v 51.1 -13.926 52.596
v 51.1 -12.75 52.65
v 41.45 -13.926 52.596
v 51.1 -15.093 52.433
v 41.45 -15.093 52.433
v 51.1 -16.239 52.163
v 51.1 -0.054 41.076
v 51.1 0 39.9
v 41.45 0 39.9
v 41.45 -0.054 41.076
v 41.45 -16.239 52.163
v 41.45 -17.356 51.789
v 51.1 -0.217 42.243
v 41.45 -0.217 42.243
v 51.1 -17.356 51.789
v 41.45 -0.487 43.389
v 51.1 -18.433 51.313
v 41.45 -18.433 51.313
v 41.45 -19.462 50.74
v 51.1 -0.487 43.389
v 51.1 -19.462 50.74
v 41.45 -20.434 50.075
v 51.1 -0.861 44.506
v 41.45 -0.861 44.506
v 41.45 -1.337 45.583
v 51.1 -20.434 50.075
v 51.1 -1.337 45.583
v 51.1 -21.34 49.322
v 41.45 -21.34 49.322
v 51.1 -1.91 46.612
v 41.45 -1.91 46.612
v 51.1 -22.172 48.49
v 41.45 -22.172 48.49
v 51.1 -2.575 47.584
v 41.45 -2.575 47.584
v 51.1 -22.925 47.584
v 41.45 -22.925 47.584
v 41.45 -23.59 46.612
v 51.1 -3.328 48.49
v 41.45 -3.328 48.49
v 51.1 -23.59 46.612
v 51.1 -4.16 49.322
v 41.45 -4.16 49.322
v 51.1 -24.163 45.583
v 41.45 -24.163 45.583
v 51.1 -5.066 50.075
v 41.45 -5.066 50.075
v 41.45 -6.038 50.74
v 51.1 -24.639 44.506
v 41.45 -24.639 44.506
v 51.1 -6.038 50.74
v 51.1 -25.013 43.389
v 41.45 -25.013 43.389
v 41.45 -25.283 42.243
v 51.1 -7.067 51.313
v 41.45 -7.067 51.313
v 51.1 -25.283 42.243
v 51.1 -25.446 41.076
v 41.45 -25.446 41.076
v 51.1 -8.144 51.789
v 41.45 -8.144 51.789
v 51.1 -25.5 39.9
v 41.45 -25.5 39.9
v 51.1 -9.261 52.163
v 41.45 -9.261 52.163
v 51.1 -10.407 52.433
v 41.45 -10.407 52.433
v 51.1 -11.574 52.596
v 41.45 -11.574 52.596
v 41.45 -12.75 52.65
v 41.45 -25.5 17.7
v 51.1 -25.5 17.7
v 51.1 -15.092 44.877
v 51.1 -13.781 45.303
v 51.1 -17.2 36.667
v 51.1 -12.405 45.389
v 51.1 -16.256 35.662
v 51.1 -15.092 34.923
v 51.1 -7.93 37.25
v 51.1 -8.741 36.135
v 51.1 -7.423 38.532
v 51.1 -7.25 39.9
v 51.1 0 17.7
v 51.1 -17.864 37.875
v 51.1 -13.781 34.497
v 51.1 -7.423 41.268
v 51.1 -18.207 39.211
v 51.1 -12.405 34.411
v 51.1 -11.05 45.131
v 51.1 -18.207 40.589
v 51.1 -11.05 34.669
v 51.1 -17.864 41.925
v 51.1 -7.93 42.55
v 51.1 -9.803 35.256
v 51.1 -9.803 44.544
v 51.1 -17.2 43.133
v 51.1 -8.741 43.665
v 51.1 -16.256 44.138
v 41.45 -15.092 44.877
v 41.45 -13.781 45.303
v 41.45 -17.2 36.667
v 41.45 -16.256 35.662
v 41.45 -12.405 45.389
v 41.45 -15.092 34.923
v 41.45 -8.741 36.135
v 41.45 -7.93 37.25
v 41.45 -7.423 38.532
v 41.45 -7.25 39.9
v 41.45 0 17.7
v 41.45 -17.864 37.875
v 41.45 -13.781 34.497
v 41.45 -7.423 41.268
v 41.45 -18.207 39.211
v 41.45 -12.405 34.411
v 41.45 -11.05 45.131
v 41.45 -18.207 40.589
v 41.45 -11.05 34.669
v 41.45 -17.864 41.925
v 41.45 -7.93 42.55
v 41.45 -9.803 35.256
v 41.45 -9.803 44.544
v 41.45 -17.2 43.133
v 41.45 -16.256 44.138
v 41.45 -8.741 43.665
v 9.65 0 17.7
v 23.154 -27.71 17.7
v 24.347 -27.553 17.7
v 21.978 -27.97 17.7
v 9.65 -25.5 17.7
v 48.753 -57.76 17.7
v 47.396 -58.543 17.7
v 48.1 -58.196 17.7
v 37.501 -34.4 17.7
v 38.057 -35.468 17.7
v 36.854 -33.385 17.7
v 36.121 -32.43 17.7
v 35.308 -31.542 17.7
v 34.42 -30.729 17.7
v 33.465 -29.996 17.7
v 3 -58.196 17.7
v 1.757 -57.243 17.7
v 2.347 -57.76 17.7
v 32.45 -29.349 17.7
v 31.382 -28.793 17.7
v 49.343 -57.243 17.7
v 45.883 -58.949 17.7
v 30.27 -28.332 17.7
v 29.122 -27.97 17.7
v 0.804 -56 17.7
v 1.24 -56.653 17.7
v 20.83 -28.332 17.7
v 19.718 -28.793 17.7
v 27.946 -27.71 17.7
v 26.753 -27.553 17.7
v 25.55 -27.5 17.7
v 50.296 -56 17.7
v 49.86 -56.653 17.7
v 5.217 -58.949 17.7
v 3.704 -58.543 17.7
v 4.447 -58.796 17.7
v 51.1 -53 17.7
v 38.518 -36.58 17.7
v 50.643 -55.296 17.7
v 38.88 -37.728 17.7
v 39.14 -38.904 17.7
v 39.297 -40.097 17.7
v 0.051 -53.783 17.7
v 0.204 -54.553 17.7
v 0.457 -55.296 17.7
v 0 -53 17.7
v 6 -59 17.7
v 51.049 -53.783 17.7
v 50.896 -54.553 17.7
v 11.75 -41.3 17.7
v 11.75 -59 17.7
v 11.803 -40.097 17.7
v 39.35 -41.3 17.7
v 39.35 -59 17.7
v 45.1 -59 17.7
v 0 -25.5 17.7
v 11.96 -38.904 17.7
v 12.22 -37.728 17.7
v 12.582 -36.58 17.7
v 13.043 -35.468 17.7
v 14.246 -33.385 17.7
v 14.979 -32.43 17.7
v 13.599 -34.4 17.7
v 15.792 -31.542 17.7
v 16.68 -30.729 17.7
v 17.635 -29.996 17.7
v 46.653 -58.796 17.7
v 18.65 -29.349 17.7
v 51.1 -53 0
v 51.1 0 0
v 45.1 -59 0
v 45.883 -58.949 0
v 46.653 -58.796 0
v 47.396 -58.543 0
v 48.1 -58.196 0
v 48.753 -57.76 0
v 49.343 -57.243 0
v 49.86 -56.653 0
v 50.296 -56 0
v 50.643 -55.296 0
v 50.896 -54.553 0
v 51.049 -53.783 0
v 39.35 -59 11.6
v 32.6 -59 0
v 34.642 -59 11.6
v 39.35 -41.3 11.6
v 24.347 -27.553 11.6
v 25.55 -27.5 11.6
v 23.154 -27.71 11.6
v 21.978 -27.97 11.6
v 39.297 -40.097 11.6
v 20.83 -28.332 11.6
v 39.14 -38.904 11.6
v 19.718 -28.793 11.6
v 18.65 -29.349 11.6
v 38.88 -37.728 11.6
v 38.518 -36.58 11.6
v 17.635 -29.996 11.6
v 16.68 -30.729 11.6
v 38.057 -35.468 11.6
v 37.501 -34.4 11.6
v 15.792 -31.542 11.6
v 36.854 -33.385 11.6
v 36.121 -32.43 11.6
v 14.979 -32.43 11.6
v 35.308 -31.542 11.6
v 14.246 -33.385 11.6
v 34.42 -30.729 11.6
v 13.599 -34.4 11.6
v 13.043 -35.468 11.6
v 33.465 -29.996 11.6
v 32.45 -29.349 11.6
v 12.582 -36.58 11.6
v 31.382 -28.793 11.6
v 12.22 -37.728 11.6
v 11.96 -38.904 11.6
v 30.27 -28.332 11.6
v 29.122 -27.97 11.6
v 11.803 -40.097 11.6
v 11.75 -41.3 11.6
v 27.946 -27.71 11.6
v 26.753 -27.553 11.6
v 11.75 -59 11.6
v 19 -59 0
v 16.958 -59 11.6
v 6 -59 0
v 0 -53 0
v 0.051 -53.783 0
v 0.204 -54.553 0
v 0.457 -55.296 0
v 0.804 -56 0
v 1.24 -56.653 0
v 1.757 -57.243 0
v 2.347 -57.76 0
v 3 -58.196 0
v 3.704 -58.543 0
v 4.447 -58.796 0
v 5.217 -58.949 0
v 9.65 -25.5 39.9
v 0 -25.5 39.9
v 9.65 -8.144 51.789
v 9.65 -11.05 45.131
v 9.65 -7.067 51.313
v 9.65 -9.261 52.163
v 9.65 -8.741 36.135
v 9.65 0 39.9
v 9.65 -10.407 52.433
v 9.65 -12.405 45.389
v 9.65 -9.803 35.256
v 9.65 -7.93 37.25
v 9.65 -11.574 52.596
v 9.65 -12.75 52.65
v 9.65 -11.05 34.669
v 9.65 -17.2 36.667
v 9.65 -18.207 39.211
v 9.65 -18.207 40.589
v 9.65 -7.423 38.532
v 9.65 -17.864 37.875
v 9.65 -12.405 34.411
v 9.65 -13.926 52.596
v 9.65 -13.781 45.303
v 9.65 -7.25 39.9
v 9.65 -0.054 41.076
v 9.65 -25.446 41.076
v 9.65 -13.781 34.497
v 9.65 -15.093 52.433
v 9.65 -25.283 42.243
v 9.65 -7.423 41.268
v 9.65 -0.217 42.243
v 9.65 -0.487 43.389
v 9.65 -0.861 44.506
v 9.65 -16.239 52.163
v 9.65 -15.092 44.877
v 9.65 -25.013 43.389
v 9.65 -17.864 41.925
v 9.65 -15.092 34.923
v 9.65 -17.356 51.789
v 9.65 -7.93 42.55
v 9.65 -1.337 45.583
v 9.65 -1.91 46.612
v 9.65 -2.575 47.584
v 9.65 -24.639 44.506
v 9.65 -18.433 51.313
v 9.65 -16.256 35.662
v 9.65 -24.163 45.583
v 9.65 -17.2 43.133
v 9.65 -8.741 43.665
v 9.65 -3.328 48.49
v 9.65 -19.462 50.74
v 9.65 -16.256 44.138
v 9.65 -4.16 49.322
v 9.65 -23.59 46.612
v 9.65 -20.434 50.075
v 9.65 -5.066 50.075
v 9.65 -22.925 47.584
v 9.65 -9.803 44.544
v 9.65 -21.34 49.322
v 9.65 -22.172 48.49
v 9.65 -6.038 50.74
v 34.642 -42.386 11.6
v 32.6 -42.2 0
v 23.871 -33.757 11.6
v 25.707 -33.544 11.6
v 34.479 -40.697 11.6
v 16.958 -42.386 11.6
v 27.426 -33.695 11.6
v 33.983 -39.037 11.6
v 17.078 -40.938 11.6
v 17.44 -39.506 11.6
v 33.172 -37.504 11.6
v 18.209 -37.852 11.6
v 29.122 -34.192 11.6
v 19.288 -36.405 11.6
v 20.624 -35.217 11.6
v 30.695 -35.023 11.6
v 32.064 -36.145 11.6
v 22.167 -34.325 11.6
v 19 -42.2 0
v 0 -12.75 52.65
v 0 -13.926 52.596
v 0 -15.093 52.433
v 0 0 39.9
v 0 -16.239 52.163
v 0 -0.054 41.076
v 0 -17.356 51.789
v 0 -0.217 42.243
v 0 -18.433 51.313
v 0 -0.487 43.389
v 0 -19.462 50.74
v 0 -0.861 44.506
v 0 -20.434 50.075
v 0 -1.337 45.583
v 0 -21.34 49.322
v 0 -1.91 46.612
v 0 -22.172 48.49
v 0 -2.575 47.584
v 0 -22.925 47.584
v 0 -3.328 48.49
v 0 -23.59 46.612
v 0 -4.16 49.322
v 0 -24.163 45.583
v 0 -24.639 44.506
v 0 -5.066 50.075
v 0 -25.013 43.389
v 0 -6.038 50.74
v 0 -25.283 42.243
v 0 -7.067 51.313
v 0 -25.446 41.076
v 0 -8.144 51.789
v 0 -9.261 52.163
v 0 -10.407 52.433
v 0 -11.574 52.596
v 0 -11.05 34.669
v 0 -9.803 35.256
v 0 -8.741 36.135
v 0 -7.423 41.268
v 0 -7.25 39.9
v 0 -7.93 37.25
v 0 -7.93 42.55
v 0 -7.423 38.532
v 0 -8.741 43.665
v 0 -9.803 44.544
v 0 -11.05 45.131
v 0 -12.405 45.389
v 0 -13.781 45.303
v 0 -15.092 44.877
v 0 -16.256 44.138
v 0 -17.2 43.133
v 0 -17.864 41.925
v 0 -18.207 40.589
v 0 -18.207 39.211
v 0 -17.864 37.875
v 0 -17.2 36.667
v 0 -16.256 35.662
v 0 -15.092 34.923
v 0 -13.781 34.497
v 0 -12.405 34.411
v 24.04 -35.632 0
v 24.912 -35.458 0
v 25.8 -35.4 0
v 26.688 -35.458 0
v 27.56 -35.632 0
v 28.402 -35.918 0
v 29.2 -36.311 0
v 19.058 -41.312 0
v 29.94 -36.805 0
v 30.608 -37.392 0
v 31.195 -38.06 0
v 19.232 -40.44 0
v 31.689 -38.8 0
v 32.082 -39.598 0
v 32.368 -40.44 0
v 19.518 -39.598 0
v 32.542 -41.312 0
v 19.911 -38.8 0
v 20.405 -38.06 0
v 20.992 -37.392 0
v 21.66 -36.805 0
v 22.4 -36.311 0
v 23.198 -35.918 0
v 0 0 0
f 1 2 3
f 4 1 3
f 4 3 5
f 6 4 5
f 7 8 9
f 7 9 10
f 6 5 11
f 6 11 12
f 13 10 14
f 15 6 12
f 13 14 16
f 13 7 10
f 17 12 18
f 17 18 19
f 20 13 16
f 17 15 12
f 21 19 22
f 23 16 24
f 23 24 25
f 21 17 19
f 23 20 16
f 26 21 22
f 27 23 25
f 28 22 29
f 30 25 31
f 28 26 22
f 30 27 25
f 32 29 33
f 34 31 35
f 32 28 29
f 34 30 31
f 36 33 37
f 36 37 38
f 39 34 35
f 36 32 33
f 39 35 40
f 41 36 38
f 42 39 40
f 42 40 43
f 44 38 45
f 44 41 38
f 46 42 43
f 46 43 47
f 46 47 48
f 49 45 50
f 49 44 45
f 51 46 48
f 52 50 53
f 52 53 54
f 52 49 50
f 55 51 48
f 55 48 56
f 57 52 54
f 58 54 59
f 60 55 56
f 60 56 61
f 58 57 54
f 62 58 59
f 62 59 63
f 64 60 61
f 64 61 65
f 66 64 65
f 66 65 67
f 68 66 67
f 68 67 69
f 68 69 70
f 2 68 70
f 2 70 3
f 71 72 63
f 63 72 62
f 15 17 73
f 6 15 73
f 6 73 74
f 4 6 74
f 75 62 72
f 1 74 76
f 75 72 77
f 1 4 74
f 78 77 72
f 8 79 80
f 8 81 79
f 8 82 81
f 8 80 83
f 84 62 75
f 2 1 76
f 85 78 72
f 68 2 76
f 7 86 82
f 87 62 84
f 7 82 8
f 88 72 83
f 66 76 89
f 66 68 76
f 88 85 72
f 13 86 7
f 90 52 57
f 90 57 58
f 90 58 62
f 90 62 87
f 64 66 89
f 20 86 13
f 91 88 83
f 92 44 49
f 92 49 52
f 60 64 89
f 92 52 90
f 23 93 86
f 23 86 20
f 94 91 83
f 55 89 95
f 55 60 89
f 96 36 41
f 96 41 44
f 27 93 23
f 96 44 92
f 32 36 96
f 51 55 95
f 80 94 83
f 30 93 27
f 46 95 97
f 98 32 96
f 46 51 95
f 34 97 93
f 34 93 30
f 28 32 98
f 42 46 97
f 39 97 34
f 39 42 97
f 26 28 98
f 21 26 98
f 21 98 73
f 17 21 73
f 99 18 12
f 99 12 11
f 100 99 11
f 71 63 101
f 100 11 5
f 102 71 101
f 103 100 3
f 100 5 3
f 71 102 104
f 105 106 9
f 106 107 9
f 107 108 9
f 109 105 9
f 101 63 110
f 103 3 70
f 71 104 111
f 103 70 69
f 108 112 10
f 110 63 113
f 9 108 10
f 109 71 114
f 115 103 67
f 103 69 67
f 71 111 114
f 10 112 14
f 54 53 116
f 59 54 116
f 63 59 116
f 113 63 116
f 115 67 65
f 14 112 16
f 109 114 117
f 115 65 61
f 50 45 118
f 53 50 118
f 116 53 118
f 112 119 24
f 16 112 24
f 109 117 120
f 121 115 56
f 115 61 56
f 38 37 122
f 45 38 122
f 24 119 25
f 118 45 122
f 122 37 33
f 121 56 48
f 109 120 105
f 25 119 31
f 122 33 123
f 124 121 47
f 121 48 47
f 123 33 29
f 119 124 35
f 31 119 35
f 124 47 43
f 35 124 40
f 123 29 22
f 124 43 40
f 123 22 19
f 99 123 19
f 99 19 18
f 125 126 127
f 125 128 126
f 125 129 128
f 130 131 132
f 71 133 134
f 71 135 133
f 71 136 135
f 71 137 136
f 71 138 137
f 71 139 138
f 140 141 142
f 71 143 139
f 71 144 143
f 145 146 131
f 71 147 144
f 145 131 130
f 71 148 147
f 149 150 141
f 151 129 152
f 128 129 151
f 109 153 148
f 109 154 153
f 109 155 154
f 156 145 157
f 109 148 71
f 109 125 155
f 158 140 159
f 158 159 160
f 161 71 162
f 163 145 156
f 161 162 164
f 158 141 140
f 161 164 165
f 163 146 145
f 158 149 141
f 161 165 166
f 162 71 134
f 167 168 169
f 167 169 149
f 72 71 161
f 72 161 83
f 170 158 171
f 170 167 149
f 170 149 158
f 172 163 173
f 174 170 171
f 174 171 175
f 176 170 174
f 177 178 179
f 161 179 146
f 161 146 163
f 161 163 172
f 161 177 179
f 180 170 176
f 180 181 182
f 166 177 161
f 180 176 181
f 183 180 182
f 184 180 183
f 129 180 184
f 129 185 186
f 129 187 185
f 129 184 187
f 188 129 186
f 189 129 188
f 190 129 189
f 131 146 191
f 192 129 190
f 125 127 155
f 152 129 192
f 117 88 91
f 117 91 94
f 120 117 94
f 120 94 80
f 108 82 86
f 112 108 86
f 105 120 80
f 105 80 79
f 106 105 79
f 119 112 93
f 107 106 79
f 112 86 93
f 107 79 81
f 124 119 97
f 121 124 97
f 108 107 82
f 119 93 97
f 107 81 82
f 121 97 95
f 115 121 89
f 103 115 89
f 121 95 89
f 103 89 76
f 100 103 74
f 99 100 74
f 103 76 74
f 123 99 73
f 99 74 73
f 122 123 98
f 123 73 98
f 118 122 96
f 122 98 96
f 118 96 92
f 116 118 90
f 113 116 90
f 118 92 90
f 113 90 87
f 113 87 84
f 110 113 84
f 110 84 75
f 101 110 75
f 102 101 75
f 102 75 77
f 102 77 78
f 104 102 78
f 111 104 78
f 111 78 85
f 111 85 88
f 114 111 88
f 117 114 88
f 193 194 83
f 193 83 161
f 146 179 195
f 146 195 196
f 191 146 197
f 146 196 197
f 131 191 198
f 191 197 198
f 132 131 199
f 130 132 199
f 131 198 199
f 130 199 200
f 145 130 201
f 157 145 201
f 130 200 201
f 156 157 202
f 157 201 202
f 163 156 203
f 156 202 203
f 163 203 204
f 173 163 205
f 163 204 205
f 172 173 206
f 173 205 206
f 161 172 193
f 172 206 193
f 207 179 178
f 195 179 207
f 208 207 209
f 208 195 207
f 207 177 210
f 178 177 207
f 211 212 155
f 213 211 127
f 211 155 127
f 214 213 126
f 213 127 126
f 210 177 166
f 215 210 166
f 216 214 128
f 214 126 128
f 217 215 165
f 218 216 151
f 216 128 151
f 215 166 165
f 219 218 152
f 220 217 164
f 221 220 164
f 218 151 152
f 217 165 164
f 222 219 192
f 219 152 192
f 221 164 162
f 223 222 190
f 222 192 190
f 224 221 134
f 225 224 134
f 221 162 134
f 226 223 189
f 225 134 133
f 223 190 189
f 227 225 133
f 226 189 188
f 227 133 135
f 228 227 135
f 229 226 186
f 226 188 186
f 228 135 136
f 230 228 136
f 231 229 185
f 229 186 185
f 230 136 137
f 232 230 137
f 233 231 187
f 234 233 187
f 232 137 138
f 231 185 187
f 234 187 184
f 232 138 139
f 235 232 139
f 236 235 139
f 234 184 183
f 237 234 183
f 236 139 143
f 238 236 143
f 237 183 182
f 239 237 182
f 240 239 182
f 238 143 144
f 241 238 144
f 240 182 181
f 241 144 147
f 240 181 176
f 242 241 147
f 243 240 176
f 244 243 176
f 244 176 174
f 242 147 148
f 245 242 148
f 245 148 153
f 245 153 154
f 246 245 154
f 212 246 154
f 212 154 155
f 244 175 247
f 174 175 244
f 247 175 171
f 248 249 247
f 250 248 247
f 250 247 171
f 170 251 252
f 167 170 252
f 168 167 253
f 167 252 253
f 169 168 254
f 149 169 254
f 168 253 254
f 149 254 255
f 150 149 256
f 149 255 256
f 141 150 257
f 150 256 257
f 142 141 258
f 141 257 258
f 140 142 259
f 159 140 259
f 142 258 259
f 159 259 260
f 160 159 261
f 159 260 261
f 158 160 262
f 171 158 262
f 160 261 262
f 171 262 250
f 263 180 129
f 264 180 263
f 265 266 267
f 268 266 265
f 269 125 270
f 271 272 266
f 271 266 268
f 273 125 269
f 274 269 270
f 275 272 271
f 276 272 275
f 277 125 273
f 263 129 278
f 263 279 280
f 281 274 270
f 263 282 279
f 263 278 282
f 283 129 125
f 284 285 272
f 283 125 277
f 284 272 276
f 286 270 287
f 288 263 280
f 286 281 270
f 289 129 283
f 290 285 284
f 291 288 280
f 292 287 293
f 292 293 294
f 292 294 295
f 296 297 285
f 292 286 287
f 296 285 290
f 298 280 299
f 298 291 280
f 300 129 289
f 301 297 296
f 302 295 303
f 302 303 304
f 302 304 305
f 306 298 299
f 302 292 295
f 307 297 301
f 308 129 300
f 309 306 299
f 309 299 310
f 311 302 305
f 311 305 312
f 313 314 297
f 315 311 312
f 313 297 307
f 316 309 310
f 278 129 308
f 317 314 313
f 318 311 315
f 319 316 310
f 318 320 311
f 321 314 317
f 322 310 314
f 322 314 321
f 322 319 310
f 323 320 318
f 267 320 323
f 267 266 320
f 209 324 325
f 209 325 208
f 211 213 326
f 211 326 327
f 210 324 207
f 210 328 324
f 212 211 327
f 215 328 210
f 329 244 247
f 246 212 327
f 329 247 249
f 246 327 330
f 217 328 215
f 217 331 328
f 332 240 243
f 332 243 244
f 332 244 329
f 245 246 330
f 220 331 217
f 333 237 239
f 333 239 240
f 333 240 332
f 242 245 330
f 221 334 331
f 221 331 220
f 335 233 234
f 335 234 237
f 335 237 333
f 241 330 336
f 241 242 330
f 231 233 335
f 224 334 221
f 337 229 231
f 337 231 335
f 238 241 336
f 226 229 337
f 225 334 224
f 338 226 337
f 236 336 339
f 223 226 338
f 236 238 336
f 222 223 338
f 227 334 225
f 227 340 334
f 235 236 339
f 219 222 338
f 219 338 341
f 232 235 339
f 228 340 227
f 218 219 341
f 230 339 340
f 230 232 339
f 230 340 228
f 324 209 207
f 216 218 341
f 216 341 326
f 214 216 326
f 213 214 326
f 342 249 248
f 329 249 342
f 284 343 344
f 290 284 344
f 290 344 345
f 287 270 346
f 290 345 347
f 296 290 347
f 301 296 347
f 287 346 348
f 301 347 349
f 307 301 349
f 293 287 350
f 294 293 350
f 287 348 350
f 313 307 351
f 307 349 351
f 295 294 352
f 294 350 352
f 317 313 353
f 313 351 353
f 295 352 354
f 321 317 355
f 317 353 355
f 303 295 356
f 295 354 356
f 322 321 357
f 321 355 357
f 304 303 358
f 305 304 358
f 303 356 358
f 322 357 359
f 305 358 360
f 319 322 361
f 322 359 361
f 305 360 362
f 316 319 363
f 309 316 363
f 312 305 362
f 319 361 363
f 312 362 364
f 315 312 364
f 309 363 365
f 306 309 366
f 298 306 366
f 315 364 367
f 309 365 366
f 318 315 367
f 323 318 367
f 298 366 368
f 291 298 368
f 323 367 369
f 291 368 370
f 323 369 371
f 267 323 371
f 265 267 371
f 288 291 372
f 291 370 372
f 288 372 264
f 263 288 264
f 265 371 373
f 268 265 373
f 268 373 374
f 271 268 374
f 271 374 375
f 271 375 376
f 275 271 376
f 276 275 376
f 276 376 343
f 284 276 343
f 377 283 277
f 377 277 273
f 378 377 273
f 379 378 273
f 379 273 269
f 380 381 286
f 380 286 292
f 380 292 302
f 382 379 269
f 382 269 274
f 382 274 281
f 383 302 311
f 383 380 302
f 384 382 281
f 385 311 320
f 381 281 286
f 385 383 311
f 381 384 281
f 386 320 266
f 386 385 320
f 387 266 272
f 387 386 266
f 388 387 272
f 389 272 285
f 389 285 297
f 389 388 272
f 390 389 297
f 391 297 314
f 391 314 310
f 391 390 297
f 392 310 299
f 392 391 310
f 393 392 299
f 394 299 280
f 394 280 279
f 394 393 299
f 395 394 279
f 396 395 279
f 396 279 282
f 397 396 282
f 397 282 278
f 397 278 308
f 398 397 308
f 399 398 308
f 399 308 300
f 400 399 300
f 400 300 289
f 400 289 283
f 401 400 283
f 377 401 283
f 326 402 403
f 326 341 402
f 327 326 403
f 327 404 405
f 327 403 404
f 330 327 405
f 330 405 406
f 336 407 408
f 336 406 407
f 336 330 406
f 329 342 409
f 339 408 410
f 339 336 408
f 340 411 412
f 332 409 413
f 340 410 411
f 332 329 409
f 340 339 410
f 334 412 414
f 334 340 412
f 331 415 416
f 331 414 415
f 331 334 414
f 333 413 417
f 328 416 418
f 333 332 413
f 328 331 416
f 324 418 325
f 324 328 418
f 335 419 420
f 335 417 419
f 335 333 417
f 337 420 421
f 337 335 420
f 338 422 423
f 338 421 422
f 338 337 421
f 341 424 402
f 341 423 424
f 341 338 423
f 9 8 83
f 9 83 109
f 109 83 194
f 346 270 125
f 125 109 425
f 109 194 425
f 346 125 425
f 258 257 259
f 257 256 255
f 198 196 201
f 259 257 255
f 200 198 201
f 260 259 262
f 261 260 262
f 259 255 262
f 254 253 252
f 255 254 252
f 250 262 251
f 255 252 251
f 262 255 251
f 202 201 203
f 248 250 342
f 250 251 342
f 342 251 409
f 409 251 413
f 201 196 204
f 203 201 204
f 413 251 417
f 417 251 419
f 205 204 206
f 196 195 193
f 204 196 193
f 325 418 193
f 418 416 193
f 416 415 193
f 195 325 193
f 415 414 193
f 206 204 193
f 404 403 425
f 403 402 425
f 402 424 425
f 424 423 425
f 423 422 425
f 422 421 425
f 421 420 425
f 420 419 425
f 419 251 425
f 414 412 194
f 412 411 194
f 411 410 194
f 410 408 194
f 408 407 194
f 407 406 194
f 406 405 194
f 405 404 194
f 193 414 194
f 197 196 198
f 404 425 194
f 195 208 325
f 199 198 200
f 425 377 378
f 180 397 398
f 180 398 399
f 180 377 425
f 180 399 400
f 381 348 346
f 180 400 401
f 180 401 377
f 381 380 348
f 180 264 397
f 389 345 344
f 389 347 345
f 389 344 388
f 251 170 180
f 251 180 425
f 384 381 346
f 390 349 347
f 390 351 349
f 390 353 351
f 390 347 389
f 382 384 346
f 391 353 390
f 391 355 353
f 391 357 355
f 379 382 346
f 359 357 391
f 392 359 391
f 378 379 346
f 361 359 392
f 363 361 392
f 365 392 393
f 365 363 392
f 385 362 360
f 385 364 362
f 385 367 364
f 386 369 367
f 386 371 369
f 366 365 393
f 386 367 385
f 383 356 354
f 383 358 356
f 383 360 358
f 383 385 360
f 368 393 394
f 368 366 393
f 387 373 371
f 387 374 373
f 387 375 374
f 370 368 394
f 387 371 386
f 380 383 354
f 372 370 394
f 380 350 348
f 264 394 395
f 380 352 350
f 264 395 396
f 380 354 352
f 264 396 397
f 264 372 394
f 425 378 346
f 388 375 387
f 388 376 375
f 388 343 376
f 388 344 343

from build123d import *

# Parameters (mm, degrees)
PAD_DEPTH    = 17.7
POCKET_DEPTH = 6.1
SKETCH004_R  = 5.5
PAD001_DEPTH = 9.65
SKETCH005_R  = 5.5
PAD002_DEPTH = 9.65


with BuildPart() as hueco_inclinado:
    # Sketch002 → Loft section 0
    with BuildSketch(Plane.XY):
        with BuildLine():
            Line((32.6, -42.200036), (32.6, -60))
            Line((32.6, -60), (19, -60))
            Line((19, -60), (19, -42.200036))
            ThreePointArc((32.6, -42.200036), (25.8, -35.4), (19, -42.200036))
        make_face()
    # Sketch003 → Loft section 1
    with BuildSketch(Plane.XY.offset(12.5)):
        with BuildLine():
            Line((34.8, -42.4), (34.8, -61))
            Line((34.8, -61), (16.8, -61))
            Line((16.8, -61), (16.8, -42.4))
            ThreePointArc((34.8, -42.4), (25.8, -33.4), (16.8, -42.4))
        make_face()
    loft(ruled=True)


with BuildPart() as base:
    # Sketch → Pad (new body)
    with BuildSketch(Plane.XY):
        with BuildLine():
            Line((0, 0), (51.1, 0))
            Line((51.1, 0), (51.1, -53))
            ThreePointArc((45.1, -59), (49.342641, -57.242641), (51.1, -53))
            Line((45.1, -59), (6, -59))
            ThreePointArc((0, -53), (1.757359, -57.242641), (6, -59))
            Line((0, -53), (0, 0))
        make_face()
    extrude(amount=PAD_DEPTH)

    # Sketch001 → Pocket (cut)
    with BuildSketch(Plane.XY.offset(17.7)):
        with BuildLine():
            Line((39.35, -41.3), (39.35, -59))
            Line((11.75, -59), (39.35, -59))
            Line((11.75, -59), (11.75, -41.3))
            ThreePointArc((39.35, -41.3), (25.55, -27.5), (11.75, -41.3))
        make_face()
    extrude(amount=-POCKET_DEPTH, mode=Mode.SUBTRACT)

    # Cut: cut Hueco-inclinado
    add(hueco_inclinado.part, mode=Mode.SUBTRACT)


with BuildPart() as oreja_iz:
    # Sketch004 → Pad001 (new body)
    with BuildSketch(Plane.YZ):
        with BuildLine():
            Line((0, 39.9), (0, 0))
            Line((0, 0), (-25.5, 0))
            Line((-25.5, 0), (-25.5, 39.9))
            ThreePointArc((0, 39.9), (-12.75, 52.65), (-25.5, 39.9))
        make_face()
        with Locations((-12.75, 39.9)):
            Circle(SKETCH004_R, mode=Mode.SUBTRACT)
    extrude(amount=PAD001_DEPTH)


with BuildPart() as hueco_inclinado001:
    # Sketch005 → Pad002 (new body)
    with BuildSketch(Plane.YZ.offset(51.1)):
        with BuildLine():
            Line((0, 39.9), (0, 0))
            Line((0, 0), (-25.5, 0))
            Line((-25.5, 0), (-25.5, 39.9))
            ThreePointArc((0, 39.9), (-12.75, 52.65), (-25.5, 39.9))
        make_face()
        with Locations((-12.75, 39.9)):
            Circle(SKETCH005_R, mode=Mode.SUBTRACT)
    extrude(amount=-PAD002_DEPTH)

    # Fusion: union Oreja-iz
    add(oreja_iz.part)

    # Fusion001: union Base
    add(base.part)


solid = hueco_inclinado001.part
